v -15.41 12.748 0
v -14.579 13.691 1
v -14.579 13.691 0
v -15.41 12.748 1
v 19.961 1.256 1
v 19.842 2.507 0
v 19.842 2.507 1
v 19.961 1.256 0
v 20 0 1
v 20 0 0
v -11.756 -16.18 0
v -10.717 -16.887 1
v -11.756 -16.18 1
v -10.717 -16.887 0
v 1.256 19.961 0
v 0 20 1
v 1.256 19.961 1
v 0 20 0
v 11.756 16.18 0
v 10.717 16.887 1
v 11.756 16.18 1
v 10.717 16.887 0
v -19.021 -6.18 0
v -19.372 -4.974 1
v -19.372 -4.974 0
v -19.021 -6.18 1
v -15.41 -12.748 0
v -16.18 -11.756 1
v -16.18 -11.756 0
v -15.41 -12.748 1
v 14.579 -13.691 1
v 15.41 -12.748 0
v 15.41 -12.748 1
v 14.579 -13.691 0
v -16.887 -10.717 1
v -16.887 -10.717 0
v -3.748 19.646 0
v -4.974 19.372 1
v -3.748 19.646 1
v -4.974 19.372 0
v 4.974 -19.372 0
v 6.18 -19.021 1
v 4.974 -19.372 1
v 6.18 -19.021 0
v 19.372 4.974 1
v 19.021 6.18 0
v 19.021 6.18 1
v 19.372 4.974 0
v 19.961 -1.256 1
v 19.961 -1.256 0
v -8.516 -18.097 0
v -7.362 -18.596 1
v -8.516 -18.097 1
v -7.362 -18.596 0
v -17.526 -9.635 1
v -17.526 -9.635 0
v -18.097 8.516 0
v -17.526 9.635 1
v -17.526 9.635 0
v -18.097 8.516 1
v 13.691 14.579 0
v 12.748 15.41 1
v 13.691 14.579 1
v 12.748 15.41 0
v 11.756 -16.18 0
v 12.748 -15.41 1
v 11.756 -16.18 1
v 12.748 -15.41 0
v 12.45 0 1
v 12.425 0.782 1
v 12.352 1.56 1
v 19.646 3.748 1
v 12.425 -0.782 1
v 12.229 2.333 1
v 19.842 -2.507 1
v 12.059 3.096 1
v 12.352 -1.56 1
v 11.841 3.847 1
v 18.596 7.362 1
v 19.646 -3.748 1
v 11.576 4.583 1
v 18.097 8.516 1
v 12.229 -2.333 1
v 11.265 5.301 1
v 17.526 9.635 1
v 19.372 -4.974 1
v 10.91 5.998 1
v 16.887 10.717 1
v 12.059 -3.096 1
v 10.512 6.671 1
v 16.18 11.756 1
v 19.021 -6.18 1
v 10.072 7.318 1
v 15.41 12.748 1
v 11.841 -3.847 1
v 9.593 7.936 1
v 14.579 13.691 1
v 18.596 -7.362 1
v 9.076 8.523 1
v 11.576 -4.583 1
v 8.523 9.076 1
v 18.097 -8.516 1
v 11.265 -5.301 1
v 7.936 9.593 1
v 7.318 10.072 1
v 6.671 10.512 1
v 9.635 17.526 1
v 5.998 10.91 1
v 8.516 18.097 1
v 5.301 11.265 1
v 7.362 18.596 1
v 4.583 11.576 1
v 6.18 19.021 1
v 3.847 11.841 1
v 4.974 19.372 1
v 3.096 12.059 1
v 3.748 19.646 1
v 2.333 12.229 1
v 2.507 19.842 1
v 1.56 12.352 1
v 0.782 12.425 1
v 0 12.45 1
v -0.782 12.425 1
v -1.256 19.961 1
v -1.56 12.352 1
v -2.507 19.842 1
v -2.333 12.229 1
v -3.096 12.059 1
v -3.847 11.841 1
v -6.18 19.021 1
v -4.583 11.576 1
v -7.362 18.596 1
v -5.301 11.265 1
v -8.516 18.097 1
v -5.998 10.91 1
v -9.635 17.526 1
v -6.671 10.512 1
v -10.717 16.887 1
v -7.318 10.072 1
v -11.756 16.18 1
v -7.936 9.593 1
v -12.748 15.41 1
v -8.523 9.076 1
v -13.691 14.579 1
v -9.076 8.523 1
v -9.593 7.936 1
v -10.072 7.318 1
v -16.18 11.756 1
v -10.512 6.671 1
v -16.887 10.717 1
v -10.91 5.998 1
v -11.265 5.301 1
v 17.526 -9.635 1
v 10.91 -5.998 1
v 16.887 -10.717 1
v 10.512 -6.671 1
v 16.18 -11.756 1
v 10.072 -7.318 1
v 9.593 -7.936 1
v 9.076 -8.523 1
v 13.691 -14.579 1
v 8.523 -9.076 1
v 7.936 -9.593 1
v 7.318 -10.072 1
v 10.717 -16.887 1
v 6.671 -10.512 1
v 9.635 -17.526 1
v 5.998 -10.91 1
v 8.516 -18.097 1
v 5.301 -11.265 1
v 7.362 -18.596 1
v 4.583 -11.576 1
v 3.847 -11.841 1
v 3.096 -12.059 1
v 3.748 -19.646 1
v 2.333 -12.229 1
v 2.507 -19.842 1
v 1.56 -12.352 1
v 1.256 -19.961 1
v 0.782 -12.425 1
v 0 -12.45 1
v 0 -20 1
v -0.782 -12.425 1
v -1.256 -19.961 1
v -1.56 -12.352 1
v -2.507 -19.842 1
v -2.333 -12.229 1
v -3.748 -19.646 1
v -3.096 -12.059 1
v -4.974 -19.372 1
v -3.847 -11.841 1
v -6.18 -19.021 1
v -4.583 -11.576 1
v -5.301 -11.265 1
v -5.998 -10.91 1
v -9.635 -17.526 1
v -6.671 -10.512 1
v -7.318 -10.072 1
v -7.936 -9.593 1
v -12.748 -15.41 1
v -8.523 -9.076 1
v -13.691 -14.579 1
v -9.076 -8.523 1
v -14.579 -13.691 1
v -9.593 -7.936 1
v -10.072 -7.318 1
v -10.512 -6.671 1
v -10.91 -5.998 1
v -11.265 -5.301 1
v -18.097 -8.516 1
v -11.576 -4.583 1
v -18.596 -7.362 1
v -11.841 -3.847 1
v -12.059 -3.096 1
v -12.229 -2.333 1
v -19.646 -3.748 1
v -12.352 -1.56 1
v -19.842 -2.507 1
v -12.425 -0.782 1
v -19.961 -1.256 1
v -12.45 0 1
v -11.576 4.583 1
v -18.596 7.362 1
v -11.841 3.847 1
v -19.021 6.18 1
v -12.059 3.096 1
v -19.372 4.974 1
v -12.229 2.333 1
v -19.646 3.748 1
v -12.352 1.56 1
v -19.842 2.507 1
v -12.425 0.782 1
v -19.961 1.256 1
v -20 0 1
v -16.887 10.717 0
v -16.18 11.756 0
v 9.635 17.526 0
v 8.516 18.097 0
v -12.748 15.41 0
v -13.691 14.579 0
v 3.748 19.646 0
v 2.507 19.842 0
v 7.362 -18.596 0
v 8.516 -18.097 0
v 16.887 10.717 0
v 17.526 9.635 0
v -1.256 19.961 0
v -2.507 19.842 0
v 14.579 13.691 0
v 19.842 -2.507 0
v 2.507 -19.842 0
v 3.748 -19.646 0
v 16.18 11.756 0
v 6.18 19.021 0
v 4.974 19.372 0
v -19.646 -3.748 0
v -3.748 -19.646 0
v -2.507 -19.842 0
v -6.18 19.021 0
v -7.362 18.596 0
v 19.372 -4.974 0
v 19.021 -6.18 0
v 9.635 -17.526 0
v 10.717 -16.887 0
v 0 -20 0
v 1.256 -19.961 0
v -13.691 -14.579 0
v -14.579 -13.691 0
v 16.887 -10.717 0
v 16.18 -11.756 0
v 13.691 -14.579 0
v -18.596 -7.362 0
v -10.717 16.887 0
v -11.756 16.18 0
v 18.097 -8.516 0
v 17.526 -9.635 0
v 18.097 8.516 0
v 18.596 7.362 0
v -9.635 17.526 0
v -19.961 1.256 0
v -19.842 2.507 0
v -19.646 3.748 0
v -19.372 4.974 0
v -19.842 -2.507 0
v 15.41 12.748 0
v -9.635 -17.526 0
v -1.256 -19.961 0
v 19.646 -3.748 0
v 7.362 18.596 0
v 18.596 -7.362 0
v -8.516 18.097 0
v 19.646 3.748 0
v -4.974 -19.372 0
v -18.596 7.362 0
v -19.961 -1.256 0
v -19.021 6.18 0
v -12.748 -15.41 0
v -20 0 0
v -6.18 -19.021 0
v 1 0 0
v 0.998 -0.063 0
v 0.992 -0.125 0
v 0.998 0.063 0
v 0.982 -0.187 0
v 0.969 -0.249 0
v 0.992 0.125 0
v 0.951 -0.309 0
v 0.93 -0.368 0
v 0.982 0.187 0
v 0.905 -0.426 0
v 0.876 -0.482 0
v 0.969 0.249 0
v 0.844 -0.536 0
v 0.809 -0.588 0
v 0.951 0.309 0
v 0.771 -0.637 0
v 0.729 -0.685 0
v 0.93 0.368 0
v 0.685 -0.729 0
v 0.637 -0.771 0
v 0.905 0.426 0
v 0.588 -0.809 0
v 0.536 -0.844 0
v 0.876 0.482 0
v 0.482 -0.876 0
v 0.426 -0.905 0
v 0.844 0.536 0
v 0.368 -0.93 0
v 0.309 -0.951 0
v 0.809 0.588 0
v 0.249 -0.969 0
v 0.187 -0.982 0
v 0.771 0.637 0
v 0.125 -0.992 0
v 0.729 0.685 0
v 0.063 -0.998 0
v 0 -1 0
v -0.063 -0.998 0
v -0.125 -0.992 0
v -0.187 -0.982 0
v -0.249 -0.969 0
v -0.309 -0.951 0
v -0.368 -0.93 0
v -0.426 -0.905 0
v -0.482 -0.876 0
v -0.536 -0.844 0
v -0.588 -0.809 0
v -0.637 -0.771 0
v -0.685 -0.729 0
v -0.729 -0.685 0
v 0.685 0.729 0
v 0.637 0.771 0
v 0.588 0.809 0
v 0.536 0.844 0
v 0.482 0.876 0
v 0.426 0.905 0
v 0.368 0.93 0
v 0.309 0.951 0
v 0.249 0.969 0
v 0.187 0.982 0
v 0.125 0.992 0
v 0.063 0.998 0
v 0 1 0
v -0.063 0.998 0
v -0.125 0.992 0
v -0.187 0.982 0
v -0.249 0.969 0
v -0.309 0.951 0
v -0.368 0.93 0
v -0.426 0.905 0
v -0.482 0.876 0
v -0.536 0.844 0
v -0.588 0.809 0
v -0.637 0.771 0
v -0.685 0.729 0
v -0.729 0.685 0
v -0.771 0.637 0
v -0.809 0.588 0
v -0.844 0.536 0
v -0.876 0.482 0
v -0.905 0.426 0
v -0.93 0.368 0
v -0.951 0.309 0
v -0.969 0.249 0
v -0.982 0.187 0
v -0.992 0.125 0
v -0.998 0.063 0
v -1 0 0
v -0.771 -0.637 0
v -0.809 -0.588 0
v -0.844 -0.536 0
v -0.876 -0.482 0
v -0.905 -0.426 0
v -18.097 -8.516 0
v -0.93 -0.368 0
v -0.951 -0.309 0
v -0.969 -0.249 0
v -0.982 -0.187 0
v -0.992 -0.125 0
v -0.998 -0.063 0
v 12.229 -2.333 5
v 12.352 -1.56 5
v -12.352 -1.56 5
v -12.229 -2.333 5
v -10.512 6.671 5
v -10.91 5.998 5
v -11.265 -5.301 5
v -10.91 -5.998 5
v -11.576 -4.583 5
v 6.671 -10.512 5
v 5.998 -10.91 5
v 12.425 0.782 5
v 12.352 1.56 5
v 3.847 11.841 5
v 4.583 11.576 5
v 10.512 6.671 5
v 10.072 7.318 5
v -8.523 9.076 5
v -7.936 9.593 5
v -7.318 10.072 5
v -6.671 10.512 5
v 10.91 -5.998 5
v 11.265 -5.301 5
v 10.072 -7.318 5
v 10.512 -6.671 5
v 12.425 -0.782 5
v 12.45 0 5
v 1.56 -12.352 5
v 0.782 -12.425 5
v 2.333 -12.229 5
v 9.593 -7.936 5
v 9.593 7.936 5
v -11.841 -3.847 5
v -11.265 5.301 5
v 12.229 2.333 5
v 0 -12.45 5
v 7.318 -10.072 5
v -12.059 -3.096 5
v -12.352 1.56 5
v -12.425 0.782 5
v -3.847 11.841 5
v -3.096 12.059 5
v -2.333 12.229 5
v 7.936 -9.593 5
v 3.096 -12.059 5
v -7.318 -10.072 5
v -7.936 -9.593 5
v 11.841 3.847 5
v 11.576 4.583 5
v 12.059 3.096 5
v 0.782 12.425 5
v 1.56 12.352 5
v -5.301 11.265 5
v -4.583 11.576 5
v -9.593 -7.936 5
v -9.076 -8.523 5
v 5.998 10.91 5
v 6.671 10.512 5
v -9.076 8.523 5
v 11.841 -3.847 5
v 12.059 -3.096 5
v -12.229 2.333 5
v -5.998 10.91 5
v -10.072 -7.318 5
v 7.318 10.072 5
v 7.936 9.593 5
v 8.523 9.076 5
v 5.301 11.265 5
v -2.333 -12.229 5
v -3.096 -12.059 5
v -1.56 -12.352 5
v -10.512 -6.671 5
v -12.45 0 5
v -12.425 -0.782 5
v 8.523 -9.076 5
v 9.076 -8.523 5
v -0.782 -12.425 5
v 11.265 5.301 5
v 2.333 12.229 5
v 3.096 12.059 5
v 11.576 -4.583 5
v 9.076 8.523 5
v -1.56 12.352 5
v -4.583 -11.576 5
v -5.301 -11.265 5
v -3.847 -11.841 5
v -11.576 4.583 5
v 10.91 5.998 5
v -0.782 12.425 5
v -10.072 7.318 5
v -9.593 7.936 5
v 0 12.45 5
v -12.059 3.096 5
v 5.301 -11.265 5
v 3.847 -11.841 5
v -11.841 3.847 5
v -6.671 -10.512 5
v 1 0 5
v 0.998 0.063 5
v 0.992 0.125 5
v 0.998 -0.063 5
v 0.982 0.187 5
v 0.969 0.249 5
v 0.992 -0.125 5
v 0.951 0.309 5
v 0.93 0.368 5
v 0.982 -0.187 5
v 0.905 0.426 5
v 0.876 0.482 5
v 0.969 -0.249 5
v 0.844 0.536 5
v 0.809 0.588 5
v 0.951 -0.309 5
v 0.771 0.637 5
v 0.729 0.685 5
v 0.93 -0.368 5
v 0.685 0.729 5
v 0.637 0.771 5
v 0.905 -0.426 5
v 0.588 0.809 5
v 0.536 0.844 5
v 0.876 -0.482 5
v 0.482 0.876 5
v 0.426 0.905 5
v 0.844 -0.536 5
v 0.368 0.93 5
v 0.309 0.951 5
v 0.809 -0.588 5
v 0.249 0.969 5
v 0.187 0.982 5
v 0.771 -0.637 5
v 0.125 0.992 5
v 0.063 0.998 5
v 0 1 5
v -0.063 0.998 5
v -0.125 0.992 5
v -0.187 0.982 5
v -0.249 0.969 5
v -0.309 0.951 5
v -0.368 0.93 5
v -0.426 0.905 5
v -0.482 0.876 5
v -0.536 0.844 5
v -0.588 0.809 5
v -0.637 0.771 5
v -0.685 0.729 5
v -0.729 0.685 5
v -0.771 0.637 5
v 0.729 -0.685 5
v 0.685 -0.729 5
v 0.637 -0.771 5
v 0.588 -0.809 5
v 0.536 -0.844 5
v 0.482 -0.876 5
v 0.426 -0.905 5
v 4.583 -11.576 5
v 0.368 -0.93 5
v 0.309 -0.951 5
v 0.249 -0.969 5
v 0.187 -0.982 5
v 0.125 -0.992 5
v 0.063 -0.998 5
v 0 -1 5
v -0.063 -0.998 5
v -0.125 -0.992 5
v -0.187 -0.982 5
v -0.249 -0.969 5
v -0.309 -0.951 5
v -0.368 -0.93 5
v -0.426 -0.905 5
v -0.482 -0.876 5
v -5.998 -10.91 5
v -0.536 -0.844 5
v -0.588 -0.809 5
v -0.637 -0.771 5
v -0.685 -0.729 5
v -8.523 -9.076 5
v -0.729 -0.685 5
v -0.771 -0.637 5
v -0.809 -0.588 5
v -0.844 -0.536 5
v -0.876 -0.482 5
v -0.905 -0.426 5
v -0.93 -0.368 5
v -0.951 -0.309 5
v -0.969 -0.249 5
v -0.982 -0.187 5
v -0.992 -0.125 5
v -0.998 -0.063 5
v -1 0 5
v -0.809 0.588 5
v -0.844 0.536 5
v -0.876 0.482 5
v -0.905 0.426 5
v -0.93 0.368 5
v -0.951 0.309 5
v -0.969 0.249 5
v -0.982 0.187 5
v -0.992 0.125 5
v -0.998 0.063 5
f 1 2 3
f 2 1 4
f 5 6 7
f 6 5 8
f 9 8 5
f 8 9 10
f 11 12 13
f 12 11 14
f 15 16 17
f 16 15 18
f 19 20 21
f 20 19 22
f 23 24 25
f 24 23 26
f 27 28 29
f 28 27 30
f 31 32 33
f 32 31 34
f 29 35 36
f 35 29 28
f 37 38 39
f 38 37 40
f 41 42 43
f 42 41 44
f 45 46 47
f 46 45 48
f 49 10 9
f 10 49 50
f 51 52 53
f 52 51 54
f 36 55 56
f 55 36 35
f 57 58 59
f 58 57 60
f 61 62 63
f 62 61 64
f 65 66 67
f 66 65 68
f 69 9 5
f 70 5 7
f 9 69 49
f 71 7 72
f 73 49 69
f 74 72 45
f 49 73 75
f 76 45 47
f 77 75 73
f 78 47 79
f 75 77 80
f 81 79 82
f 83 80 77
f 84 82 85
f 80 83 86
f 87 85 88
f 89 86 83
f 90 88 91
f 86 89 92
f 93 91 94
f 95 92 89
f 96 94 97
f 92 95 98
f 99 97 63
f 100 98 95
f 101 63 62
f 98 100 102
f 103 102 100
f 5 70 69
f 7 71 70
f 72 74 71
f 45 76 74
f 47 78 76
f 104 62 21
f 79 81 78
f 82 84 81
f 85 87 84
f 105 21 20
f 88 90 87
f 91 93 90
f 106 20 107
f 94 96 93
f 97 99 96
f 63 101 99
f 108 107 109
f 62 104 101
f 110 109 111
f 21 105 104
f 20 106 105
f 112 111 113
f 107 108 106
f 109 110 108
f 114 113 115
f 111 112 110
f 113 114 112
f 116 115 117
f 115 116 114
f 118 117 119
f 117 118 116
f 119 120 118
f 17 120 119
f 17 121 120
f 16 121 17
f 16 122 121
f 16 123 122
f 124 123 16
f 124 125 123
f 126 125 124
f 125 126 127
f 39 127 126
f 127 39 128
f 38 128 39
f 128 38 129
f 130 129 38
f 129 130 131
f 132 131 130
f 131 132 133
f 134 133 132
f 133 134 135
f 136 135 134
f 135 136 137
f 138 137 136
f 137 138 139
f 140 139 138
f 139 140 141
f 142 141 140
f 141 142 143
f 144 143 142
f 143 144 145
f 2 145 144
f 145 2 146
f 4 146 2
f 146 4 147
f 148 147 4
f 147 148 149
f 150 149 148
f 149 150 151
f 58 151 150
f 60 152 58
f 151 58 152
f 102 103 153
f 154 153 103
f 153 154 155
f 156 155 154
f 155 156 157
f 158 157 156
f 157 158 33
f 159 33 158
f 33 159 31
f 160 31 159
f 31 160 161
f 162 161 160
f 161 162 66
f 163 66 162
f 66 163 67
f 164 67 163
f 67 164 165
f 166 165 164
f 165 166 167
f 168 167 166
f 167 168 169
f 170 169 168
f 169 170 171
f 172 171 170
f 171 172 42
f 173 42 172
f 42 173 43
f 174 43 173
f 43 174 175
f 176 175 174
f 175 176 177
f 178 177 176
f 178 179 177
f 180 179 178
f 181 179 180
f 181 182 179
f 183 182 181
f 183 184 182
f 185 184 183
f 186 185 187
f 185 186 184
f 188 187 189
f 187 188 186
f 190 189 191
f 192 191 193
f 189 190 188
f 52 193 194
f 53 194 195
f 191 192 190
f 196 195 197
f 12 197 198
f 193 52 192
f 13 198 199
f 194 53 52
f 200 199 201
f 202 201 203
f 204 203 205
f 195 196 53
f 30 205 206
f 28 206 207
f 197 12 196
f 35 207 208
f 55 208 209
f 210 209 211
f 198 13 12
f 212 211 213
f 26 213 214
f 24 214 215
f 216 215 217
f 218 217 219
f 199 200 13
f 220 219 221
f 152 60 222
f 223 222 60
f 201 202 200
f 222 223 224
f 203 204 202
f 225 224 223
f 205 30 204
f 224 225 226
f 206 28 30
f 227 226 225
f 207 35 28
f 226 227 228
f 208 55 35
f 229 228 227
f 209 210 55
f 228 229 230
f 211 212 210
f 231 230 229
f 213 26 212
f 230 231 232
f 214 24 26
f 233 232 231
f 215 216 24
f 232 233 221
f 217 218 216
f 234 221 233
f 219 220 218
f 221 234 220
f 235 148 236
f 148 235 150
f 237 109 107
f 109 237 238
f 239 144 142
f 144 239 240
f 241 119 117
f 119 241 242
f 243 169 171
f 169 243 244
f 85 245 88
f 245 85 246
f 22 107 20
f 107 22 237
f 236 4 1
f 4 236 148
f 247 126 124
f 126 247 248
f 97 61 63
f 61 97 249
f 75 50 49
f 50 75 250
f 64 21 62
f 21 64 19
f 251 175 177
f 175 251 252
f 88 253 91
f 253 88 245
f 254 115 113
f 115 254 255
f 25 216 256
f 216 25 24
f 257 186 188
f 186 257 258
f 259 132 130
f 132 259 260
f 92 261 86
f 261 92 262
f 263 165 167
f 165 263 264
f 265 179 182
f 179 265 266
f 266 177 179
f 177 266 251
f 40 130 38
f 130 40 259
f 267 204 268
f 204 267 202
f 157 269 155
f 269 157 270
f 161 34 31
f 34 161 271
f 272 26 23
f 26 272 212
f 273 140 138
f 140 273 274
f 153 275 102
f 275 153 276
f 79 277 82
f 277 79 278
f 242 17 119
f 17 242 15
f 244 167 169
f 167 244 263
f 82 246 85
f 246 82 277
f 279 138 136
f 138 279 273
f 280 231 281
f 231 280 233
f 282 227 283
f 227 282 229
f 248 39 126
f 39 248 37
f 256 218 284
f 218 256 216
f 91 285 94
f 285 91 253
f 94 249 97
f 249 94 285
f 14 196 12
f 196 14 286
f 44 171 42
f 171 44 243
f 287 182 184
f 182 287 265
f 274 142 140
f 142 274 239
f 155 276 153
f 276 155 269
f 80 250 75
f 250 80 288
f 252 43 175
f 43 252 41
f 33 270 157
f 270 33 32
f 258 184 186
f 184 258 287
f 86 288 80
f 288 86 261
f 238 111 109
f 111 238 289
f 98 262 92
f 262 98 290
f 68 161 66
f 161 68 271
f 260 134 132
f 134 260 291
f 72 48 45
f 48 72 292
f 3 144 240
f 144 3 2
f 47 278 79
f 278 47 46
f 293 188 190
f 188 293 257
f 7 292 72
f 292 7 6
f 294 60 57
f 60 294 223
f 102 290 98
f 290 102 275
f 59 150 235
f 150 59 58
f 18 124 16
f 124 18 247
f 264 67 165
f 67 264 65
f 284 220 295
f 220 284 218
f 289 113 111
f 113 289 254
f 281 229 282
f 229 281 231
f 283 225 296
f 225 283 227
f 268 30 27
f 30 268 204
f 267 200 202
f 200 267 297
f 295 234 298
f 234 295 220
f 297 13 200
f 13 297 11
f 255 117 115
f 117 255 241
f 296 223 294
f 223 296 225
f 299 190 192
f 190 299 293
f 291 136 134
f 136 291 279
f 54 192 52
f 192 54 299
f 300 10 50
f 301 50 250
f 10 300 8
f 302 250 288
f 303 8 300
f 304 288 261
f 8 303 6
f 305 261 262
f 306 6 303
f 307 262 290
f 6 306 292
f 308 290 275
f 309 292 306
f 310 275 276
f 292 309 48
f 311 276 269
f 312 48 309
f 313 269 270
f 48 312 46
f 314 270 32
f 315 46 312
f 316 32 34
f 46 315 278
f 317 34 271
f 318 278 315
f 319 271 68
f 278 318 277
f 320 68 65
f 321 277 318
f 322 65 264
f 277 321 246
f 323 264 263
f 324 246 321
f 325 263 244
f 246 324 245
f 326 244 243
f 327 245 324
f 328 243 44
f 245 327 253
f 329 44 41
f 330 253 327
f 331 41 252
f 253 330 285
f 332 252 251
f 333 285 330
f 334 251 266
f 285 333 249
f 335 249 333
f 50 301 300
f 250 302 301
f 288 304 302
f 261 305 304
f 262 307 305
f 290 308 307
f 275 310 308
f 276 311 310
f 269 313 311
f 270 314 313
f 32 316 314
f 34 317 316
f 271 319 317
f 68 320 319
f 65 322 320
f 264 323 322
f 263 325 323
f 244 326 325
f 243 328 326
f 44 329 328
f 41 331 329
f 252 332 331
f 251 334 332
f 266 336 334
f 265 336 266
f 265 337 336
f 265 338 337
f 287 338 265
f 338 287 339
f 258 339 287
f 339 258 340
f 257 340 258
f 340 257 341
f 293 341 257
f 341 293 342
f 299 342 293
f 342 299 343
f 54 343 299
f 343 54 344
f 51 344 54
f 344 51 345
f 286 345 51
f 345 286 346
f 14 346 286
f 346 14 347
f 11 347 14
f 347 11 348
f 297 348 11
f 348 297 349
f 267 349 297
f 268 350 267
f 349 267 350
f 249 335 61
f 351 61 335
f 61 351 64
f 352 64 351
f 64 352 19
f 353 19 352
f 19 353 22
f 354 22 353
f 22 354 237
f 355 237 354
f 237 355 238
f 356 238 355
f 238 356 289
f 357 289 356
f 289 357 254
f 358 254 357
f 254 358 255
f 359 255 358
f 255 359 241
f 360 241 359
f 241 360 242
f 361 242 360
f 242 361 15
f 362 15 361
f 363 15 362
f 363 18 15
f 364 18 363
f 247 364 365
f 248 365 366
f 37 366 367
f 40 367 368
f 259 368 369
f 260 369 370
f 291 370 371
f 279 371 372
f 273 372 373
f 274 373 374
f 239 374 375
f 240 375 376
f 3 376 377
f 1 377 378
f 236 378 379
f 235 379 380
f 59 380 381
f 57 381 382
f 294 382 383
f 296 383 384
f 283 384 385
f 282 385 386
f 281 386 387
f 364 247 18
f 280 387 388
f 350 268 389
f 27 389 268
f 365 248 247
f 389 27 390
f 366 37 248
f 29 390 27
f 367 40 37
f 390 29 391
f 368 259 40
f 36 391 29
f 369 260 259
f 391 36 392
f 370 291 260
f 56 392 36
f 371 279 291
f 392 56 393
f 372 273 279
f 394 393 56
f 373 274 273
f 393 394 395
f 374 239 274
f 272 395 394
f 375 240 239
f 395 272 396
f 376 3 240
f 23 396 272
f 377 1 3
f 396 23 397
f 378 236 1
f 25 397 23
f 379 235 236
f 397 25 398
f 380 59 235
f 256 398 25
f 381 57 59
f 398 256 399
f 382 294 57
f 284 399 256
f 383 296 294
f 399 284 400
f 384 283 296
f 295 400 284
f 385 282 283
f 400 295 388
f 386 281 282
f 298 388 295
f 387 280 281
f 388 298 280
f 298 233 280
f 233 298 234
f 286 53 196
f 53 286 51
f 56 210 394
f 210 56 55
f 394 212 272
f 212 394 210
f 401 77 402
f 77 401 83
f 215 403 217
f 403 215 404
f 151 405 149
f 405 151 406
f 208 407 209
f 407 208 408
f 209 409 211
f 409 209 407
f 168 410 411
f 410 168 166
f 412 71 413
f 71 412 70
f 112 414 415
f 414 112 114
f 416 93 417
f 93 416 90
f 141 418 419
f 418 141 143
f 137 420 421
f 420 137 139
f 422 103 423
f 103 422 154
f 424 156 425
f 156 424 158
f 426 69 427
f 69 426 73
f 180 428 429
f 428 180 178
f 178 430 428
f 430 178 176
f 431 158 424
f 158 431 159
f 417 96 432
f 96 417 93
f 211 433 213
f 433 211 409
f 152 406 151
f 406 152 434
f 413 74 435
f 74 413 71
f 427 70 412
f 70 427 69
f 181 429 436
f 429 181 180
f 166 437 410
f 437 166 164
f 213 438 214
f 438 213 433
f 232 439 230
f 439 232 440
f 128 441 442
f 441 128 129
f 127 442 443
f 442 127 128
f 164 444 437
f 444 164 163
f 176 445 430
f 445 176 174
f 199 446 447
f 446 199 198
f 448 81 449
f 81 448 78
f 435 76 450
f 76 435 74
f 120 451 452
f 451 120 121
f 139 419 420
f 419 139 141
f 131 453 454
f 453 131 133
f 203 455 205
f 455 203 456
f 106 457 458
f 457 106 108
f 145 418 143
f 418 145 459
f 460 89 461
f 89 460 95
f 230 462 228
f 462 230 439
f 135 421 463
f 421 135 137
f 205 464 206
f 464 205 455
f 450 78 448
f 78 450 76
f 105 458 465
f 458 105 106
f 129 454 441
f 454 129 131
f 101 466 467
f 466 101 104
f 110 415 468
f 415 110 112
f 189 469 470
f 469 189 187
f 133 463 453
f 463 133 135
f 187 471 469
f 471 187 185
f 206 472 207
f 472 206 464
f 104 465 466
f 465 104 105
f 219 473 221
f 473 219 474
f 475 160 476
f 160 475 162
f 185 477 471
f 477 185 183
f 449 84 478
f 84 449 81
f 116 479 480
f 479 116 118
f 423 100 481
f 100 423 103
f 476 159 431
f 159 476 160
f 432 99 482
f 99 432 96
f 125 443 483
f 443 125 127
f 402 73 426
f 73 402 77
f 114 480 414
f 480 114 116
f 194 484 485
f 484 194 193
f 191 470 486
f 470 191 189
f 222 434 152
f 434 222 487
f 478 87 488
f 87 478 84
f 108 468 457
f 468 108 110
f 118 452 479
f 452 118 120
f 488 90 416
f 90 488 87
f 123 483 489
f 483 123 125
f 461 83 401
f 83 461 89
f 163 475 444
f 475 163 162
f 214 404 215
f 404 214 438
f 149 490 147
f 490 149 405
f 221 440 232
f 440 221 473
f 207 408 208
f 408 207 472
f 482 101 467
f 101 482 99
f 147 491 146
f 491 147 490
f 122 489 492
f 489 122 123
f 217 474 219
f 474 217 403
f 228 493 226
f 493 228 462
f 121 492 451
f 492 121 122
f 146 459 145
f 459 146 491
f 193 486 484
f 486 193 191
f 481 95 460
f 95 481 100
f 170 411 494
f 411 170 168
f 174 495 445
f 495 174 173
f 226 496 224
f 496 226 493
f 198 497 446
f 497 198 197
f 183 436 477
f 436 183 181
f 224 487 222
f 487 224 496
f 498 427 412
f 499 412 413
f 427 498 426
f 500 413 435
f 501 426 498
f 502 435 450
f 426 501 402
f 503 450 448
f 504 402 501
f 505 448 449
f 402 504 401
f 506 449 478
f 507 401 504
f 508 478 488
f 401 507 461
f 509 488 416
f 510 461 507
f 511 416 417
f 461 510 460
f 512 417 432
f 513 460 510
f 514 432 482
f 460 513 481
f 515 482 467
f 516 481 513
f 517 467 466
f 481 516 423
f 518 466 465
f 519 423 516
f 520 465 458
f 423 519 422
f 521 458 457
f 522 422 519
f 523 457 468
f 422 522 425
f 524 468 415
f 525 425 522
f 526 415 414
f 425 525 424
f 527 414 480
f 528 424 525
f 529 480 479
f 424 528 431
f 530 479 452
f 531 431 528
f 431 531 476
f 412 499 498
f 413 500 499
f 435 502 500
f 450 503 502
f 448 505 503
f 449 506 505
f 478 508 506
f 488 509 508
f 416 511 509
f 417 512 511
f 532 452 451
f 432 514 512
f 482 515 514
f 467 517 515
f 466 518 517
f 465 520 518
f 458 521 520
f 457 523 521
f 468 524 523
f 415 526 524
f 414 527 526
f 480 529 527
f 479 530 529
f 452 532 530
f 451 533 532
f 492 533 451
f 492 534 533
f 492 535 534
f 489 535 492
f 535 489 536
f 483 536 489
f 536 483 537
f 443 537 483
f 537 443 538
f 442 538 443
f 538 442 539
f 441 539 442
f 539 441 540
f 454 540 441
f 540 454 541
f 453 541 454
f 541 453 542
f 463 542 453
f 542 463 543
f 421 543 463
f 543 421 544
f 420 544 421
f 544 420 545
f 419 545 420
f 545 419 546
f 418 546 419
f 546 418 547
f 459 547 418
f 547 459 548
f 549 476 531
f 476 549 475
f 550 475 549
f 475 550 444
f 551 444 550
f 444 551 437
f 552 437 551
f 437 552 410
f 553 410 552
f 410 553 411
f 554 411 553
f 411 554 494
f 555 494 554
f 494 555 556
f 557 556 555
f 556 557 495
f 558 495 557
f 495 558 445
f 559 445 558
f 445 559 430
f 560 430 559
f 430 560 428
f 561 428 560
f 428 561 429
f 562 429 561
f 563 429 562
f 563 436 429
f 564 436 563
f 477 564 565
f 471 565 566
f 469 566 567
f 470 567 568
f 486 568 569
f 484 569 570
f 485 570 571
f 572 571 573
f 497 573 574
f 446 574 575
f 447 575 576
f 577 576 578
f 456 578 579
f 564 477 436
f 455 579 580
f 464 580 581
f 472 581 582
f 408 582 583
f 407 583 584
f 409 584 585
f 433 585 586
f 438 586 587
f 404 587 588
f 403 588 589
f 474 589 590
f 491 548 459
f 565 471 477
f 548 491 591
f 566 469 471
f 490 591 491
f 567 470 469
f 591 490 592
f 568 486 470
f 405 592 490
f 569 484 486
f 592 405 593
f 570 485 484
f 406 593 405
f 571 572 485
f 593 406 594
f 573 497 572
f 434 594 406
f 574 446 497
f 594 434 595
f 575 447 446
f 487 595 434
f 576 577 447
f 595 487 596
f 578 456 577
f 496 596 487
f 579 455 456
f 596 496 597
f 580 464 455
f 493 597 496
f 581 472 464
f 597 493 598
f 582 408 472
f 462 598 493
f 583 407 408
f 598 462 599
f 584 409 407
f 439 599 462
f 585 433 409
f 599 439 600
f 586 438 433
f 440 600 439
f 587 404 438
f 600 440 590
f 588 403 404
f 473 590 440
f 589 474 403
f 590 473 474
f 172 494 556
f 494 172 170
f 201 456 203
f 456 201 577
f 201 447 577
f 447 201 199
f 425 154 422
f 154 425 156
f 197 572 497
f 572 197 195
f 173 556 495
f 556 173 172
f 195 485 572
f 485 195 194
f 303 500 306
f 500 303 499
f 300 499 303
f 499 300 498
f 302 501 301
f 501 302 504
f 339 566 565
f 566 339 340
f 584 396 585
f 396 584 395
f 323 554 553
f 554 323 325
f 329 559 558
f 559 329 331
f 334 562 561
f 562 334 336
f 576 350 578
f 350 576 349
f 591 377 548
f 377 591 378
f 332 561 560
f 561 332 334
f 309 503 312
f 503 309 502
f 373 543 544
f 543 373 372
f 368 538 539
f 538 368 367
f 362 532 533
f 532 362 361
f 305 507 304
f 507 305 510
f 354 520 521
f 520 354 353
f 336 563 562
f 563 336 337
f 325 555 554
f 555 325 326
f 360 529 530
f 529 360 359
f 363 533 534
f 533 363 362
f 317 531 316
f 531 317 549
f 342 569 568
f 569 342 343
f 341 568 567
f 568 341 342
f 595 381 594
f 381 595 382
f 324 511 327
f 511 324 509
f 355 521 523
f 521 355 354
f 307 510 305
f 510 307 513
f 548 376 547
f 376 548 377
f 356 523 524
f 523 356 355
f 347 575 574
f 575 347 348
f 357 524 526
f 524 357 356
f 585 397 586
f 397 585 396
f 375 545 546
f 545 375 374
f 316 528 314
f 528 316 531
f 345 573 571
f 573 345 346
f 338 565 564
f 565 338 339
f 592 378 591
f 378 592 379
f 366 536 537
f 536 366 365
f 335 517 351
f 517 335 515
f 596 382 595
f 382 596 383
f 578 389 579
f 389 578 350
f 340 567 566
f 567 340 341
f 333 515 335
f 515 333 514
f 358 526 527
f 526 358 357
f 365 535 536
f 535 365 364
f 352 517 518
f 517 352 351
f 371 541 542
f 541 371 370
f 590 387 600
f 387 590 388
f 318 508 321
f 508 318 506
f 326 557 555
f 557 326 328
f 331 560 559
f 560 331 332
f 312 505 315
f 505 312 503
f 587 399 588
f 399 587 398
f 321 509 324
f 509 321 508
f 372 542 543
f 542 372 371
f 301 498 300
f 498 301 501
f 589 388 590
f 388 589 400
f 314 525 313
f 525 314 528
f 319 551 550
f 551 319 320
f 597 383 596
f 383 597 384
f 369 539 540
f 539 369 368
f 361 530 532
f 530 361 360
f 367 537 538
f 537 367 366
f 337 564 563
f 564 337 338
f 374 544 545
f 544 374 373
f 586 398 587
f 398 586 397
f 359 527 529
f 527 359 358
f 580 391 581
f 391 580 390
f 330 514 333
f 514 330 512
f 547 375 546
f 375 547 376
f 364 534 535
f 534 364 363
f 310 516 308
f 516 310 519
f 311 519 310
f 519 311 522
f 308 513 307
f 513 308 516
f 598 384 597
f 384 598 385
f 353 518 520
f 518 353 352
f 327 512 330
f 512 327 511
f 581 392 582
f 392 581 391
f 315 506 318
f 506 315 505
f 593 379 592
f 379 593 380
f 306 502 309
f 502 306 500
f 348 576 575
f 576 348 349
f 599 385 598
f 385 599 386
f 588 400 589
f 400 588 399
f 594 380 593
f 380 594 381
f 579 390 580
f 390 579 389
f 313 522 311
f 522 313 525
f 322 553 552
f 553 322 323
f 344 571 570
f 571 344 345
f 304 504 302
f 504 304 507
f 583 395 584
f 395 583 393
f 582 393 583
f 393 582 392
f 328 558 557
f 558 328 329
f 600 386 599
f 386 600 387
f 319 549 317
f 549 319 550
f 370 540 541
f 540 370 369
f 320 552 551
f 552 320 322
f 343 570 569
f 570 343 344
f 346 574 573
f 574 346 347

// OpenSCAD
res=100;
r_splh=1;
alt=100;

difference(){
    translate([0,0,0]){
        cylinder(1,20,20,$fn=res);
        cylinder(5,12.45,12.45,$fn=res);
    }
    #translate([0,0,-15])
    #cylinder(alt,r_splh,r_splh,$fn=res);
}
